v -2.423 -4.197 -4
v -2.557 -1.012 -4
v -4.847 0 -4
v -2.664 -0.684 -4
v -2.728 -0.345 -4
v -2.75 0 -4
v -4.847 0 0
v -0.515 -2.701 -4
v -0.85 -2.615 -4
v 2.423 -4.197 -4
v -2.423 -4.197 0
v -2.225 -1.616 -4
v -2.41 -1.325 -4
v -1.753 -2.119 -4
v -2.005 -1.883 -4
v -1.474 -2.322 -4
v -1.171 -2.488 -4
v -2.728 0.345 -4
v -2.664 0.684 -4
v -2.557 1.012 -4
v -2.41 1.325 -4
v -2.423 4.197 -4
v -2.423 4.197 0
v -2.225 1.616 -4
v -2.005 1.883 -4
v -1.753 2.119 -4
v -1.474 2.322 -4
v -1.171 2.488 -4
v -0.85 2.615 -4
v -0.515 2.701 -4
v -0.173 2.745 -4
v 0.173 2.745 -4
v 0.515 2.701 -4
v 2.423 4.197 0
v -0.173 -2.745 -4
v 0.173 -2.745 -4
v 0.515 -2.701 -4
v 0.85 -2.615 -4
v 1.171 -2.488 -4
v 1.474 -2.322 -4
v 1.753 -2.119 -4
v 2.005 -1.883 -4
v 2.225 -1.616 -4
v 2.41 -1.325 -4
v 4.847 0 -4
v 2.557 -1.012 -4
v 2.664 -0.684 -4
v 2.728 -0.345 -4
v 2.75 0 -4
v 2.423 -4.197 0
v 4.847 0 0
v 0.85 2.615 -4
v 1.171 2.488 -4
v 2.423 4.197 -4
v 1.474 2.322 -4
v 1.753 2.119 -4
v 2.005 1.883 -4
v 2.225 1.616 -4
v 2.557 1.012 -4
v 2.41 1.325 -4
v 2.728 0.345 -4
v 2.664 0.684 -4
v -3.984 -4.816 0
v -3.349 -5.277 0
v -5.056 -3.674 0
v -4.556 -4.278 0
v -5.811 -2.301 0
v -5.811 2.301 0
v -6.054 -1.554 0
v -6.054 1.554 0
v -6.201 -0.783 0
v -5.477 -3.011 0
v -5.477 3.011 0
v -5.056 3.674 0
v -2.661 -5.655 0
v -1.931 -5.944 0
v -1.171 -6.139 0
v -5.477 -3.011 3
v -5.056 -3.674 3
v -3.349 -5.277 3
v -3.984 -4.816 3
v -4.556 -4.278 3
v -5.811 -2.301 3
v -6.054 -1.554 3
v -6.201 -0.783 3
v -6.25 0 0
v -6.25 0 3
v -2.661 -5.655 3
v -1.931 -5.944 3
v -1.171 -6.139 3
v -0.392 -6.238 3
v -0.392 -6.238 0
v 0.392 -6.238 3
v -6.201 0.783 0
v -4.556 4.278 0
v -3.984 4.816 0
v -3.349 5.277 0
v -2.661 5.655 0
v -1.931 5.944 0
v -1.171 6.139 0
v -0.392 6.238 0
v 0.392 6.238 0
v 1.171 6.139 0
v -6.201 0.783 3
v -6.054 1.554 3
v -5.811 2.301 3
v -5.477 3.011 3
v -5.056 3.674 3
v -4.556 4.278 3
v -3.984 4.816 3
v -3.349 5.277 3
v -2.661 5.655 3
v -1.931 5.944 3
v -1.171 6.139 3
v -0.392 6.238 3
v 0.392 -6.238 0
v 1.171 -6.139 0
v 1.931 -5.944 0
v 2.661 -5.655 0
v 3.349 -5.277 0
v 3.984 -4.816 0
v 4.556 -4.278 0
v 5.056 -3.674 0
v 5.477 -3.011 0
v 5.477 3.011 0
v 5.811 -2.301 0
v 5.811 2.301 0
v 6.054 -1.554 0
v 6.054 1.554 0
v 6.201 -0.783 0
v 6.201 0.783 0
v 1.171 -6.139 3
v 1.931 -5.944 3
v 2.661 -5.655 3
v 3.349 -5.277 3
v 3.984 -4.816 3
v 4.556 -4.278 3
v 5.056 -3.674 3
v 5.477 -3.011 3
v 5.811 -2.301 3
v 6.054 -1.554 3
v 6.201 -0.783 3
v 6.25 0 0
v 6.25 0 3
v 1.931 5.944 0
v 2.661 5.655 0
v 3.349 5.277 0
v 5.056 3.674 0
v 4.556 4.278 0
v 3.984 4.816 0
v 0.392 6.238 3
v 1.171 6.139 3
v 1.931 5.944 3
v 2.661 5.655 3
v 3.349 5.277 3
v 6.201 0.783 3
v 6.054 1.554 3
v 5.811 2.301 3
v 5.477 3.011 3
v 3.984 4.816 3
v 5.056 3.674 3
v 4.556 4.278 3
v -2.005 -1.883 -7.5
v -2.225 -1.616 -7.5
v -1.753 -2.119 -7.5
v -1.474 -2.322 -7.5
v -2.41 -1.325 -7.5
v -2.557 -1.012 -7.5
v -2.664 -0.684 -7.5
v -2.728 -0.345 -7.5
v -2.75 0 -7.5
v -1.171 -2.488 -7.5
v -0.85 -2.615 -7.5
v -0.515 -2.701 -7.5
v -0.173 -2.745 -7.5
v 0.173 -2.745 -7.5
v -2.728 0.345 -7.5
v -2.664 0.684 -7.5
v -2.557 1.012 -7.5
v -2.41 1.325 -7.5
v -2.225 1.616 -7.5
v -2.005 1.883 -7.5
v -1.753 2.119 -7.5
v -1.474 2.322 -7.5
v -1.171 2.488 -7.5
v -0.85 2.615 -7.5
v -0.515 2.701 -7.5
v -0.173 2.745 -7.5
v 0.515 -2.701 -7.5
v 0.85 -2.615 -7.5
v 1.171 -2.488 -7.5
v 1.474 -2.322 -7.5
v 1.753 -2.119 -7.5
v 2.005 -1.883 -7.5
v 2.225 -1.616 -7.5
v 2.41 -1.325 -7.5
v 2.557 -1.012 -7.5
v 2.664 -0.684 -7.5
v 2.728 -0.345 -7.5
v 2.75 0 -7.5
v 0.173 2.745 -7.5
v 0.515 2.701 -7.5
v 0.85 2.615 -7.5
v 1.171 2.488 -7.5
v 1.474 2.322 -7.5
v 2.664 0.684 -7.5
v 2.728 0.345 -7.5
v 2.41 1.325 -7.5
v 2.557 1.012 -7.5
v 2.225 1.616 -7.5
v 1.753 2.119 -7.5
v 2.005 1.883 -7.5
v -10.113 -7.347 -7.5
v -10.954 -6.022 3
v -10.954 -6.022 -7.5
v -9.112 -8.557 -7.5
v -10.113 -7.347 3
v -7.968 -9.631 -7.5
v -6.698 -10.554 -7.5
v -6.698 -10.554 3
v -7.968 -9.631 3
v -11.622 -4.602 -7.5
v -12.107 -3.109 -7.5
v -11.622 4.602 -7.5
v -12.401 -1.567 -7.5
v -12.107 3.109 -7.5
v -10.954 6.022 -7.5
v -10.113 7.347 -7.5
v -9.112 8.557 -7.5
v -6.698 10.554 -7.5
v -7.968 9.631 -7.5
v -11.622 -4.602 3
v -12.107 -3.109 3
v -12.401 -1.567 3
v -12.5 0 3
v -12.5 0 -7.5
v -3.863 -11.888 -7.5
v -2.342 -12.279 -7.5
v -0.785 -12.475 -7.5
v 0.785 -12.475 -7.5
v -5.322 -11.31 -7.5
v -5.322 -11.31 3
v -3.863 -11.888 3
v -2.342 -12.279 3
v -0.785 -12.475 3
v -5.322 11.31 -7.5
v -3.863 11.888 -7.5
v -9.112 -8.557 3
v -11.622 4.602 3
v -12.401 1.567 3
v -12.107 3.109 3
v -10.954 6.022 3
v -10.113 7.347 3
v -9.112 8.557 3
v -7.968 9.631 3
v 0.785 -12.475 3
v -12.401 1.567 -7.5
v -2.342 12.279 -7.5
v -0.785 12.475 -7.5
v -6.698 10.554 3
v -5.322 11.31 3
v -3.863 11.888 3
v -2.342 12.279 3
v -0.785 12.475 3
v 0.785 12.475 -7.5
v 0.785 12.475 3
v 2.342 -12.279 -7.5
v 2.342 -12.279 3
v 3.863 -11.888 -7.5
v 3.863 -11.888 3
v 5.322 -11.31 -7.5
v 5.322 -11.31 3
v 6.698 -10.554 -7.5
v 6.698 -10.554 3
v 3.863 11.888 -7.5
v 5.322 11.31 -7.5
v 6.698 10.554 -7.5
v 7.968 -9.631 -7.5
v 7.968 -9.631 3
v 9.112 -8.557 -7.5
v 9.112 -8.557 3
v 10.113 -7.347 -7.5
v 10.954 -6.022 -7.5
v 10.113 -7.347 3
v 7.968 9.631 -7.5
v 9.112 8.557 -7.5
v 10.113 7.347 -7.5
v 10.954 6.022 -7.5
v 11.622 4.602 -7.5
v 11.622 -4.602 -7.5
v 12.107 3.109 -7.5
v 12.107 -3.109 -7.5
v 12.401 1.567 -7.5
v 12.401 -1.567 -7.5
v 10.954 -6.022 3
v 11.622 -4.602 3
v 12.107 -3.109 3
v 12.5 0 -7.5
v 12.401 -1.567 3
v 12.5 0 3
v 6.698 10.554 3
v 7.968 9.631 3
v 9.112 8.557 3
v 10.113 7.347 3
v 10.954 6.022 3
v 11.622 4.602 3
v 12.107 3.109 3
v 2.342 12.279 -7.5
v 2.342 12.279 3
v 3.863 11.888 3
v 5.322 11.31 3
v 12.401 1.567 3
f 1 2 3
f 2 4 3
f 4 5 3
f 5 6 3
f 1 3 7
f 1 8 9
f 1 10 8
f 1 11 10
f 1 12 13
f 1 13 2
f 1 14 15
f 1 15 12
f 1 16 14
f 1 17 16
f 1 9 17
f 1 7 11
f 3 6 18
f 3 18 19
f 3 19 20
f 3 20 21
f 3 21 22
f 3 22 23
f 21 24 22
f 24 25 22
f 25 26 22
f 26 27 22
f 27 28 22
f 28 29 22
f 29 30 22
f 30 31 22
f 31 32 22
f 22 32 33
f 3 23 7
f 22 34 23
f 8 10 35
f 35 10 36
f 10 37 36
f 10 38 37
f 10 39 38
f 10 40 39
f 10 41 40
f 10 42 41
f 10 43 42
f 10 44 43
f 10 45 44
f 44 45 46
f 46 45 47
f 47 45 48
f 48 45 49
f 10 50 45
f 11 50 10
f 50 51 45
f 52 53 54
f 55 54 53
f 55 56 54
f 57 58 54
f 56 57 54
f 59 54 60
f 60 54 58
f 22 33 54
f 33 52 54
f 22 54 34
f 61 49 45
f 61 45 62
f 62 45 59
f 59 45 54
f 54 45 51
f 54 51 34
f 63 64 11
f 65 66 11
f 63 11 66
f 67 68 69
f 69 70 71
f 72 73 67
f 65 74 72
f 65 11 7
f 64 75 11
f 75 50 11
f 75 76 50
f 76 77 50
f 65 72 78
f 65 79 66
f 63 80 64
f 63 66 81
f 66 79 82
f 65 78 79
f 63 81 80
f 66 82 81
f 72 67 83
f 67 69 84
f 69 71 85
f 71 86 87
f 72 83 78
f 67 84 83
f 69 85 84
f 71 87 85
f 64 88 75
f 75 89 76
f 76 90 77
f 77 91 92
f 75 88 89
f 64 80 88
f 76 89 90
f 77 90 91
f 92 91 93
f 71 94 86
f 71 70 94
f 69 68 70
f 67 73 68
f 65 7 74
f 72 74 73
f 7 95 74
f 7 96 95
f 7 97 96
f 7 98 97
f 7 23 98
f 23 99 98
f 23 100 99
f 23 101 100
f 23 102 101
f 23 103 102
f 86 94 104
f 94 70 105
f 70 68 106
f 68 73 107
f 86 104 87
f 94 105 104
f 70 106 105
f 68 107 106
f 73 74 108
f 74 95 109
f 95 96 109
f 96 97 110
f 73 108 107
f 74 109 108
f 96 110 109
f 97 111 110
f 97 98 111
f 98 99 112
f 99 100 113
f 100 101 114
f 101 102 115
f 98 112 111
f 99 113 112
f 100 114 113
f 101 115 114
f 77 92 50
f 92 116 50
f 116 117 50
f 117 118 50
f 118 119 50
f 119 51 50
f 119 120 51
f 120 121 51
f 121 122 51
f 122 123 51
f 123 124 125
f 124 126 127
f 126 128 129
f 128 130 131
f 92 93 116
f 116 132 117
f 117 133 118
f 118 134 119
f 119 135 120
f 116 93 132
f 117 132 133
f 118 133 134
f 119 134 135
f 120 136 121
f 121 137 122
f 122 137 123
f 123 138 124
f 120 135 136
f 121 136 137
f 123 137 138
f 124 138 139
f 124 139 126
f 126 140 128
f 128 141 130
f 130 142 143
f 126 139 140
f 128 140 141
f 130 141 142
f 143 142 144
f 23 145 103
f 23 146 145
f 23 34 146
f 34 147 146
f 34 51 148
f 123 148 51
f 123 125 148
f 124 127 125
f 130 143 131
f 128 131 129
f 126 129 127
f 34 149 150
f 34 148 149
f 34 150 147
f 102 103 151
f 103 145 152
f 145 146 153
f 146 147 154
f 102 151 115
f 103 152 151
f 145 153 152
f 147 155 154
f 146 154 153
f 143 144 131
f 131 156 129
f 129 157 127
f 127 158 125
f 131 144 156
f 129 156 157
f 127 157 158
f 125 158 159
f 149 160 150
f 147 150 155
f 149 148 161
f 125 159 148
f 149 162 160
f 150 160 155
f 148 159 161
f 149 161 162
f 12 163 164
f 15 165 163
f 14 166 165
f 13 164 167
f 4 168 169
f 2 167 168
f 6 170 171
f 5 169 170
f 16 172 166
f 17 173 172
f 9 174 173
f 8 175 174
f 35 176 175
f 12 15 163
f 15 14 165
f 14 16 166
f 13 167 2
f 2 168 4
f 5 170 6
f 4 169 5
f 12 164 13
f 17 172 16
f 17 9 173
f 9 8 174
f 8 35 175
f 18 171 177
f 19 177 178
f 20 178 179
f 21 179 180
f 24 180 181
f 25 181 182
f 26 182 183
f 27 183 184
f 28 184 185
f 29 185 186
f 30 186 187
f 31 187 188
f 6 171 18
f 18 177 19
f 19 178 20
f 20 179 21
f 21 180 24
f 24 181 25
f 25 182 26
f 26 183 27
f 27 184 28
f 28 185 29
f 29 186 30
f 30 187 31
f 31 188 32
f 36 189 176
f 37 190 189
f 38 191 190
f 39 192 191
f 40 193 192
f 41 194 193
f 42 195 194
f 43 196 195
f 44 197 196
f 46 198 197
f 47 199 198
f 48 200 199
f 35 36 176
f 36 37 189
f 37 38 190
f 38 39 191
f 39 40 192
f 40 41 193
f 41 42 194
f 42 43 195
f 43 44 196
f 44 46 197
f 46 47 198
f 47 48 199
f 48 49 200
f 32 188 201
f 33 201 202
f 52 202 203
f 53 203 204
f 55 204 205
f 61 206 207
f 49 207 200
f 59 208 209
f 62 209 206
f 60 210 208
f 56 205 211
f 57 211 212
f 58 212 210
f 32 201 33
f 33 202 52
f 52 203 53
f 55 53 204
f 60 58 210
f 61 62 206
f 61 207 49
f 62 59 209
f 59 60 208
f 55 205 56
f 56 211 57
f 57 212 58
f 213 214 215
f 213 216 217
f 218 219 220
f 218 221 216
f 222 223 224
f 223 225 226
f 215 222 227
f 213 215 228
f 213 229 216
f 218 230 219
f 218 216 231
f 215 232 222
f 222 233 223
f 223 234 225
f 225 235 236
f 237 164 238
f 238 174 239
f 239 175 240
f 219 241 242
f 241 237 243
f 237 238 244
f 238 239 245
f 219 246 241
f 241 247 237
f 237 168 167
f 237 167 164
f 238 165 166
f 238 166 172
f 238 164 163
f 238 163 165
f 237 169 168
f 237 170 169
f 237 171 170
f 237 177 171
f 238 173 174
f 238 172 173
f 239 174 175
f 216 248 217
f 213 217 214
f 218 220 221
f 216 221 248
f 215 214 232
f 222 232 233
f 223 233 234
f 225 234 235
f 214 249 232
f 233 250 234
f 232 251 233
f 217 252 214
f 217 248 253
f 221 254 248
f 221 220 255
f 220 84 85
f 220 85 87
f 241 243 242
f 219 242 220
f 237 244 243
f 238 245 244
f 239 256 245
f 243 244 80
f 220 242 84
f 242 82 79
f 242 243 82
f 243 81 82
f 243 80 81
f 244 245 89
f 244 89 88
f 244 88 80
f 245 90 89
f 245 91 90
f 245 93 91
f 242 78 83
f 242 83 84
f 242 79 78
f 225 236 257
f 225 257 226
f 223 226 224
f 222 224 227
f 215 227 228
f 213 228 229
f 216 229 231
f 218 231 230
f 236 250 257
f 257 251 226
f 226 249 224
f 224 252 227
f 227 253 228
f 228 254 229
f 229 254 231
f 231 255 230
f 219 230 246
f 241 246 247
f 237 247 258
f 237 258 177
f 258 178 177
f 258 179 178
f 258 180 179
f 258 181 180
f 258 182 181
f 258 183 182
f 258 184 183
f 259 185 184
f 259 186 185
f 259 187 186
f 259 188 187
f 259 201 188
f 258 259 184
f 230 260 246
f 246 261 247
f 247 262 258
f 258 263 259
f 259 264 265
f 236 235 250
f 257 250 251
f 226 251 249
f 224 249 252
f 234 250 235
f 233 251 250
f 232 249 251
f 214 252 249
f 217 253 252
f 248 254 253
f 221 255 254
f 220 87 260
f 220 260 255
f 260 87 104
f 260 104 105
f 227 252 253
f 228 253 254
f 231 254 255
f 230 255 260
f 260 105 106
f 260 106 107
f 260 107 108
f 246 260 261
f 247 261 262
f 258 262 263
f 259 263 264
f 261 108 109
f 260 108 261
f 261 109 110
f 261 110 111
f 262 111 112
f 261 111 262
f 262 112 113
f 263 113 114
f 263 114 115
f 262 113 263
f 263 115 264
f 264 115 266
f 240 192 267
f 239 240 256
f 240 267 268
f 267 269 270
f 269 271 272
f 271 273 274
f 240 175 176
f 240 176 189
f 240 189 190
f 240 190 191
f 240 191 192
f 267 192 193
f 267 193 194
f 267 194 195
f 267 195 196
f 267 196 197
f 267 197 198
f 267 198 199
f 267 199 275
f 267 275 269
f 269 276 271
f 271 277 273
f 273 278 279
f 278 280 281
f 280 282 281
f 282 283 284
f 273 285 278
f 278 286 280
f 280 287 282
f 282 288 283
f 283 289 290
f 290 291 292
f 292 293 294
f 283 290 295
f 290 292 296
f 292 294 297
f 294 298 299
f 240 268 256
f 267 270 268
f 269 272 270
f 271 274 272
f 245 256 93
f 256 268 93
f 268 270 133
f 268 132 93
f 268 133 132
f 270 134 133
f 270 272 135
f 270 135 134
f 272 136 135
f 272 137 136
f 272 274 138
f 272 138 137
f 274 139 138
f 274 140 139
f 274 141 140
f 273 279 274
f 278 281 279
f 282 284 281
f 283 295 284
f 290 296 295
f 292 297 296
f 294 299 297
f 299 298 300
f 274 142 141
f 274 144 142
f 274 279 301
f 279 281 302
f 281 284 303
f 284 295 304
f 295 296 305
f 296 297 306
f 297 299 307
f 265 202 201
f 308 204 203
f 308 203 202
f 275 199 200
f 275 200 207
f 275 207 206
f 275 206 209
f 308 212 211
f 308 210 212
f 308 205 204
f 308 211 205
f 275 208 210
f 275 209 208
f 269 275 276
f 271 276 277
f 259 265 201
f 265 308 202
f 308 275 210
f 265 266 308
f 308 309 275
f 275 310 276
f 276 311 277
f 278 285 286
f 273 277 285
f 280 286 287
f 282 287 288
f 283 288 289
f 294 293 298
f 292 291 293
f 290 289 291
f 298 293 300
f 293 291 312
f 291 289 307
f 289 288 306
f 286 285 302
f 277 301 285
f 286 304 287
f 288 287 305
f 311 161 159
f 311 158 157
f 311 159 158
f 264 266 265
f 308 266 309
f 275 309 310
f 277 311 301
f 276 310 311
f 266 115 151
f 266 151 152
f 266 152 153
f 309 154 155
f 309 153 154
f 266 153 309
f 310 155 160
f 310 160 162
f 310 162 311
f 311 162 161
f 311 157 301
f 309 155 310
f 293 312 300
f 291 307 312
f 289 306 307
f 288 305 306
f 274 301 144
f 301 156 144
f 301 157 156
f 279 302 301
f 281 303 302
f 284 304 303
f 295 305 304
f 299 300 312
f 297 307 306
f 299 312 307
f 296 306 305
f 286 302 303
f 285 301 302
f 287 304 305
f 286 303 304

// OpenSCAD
$fn = 50;

difference() {
	union() {
		translate(v = [0, 0, -7.5]) {
			cylinder(h = 10.5, r = 12.5);
		}
	}
	union() {
		translate(v = [0, 0, 0]) {
			rotate(a = [0, 0, 0]) {
				difference() {
					union() {
						translate(v = [0, 0, -4]) {
							linear_extrude(height = 4) {
								polygon(points = [[4.8468, 0.0], [2.4234000000000004, 4.197451927062417], [-2.423399999999999, 4.197451927062417], [-4.8468, 5.935618106107392e-16], [-2.423400000000002, -4.197451927062416], [2.423399999999997, -4.197451927062419]]);
							}
						}
					}
					union();
				}
			}
		}
		#cylinder(h = 3, r = 6.25);
		#translate(v = [0, 0, -100.0]) {
			cylinder(h = 200, r = 2.75);
		}
	}
}
